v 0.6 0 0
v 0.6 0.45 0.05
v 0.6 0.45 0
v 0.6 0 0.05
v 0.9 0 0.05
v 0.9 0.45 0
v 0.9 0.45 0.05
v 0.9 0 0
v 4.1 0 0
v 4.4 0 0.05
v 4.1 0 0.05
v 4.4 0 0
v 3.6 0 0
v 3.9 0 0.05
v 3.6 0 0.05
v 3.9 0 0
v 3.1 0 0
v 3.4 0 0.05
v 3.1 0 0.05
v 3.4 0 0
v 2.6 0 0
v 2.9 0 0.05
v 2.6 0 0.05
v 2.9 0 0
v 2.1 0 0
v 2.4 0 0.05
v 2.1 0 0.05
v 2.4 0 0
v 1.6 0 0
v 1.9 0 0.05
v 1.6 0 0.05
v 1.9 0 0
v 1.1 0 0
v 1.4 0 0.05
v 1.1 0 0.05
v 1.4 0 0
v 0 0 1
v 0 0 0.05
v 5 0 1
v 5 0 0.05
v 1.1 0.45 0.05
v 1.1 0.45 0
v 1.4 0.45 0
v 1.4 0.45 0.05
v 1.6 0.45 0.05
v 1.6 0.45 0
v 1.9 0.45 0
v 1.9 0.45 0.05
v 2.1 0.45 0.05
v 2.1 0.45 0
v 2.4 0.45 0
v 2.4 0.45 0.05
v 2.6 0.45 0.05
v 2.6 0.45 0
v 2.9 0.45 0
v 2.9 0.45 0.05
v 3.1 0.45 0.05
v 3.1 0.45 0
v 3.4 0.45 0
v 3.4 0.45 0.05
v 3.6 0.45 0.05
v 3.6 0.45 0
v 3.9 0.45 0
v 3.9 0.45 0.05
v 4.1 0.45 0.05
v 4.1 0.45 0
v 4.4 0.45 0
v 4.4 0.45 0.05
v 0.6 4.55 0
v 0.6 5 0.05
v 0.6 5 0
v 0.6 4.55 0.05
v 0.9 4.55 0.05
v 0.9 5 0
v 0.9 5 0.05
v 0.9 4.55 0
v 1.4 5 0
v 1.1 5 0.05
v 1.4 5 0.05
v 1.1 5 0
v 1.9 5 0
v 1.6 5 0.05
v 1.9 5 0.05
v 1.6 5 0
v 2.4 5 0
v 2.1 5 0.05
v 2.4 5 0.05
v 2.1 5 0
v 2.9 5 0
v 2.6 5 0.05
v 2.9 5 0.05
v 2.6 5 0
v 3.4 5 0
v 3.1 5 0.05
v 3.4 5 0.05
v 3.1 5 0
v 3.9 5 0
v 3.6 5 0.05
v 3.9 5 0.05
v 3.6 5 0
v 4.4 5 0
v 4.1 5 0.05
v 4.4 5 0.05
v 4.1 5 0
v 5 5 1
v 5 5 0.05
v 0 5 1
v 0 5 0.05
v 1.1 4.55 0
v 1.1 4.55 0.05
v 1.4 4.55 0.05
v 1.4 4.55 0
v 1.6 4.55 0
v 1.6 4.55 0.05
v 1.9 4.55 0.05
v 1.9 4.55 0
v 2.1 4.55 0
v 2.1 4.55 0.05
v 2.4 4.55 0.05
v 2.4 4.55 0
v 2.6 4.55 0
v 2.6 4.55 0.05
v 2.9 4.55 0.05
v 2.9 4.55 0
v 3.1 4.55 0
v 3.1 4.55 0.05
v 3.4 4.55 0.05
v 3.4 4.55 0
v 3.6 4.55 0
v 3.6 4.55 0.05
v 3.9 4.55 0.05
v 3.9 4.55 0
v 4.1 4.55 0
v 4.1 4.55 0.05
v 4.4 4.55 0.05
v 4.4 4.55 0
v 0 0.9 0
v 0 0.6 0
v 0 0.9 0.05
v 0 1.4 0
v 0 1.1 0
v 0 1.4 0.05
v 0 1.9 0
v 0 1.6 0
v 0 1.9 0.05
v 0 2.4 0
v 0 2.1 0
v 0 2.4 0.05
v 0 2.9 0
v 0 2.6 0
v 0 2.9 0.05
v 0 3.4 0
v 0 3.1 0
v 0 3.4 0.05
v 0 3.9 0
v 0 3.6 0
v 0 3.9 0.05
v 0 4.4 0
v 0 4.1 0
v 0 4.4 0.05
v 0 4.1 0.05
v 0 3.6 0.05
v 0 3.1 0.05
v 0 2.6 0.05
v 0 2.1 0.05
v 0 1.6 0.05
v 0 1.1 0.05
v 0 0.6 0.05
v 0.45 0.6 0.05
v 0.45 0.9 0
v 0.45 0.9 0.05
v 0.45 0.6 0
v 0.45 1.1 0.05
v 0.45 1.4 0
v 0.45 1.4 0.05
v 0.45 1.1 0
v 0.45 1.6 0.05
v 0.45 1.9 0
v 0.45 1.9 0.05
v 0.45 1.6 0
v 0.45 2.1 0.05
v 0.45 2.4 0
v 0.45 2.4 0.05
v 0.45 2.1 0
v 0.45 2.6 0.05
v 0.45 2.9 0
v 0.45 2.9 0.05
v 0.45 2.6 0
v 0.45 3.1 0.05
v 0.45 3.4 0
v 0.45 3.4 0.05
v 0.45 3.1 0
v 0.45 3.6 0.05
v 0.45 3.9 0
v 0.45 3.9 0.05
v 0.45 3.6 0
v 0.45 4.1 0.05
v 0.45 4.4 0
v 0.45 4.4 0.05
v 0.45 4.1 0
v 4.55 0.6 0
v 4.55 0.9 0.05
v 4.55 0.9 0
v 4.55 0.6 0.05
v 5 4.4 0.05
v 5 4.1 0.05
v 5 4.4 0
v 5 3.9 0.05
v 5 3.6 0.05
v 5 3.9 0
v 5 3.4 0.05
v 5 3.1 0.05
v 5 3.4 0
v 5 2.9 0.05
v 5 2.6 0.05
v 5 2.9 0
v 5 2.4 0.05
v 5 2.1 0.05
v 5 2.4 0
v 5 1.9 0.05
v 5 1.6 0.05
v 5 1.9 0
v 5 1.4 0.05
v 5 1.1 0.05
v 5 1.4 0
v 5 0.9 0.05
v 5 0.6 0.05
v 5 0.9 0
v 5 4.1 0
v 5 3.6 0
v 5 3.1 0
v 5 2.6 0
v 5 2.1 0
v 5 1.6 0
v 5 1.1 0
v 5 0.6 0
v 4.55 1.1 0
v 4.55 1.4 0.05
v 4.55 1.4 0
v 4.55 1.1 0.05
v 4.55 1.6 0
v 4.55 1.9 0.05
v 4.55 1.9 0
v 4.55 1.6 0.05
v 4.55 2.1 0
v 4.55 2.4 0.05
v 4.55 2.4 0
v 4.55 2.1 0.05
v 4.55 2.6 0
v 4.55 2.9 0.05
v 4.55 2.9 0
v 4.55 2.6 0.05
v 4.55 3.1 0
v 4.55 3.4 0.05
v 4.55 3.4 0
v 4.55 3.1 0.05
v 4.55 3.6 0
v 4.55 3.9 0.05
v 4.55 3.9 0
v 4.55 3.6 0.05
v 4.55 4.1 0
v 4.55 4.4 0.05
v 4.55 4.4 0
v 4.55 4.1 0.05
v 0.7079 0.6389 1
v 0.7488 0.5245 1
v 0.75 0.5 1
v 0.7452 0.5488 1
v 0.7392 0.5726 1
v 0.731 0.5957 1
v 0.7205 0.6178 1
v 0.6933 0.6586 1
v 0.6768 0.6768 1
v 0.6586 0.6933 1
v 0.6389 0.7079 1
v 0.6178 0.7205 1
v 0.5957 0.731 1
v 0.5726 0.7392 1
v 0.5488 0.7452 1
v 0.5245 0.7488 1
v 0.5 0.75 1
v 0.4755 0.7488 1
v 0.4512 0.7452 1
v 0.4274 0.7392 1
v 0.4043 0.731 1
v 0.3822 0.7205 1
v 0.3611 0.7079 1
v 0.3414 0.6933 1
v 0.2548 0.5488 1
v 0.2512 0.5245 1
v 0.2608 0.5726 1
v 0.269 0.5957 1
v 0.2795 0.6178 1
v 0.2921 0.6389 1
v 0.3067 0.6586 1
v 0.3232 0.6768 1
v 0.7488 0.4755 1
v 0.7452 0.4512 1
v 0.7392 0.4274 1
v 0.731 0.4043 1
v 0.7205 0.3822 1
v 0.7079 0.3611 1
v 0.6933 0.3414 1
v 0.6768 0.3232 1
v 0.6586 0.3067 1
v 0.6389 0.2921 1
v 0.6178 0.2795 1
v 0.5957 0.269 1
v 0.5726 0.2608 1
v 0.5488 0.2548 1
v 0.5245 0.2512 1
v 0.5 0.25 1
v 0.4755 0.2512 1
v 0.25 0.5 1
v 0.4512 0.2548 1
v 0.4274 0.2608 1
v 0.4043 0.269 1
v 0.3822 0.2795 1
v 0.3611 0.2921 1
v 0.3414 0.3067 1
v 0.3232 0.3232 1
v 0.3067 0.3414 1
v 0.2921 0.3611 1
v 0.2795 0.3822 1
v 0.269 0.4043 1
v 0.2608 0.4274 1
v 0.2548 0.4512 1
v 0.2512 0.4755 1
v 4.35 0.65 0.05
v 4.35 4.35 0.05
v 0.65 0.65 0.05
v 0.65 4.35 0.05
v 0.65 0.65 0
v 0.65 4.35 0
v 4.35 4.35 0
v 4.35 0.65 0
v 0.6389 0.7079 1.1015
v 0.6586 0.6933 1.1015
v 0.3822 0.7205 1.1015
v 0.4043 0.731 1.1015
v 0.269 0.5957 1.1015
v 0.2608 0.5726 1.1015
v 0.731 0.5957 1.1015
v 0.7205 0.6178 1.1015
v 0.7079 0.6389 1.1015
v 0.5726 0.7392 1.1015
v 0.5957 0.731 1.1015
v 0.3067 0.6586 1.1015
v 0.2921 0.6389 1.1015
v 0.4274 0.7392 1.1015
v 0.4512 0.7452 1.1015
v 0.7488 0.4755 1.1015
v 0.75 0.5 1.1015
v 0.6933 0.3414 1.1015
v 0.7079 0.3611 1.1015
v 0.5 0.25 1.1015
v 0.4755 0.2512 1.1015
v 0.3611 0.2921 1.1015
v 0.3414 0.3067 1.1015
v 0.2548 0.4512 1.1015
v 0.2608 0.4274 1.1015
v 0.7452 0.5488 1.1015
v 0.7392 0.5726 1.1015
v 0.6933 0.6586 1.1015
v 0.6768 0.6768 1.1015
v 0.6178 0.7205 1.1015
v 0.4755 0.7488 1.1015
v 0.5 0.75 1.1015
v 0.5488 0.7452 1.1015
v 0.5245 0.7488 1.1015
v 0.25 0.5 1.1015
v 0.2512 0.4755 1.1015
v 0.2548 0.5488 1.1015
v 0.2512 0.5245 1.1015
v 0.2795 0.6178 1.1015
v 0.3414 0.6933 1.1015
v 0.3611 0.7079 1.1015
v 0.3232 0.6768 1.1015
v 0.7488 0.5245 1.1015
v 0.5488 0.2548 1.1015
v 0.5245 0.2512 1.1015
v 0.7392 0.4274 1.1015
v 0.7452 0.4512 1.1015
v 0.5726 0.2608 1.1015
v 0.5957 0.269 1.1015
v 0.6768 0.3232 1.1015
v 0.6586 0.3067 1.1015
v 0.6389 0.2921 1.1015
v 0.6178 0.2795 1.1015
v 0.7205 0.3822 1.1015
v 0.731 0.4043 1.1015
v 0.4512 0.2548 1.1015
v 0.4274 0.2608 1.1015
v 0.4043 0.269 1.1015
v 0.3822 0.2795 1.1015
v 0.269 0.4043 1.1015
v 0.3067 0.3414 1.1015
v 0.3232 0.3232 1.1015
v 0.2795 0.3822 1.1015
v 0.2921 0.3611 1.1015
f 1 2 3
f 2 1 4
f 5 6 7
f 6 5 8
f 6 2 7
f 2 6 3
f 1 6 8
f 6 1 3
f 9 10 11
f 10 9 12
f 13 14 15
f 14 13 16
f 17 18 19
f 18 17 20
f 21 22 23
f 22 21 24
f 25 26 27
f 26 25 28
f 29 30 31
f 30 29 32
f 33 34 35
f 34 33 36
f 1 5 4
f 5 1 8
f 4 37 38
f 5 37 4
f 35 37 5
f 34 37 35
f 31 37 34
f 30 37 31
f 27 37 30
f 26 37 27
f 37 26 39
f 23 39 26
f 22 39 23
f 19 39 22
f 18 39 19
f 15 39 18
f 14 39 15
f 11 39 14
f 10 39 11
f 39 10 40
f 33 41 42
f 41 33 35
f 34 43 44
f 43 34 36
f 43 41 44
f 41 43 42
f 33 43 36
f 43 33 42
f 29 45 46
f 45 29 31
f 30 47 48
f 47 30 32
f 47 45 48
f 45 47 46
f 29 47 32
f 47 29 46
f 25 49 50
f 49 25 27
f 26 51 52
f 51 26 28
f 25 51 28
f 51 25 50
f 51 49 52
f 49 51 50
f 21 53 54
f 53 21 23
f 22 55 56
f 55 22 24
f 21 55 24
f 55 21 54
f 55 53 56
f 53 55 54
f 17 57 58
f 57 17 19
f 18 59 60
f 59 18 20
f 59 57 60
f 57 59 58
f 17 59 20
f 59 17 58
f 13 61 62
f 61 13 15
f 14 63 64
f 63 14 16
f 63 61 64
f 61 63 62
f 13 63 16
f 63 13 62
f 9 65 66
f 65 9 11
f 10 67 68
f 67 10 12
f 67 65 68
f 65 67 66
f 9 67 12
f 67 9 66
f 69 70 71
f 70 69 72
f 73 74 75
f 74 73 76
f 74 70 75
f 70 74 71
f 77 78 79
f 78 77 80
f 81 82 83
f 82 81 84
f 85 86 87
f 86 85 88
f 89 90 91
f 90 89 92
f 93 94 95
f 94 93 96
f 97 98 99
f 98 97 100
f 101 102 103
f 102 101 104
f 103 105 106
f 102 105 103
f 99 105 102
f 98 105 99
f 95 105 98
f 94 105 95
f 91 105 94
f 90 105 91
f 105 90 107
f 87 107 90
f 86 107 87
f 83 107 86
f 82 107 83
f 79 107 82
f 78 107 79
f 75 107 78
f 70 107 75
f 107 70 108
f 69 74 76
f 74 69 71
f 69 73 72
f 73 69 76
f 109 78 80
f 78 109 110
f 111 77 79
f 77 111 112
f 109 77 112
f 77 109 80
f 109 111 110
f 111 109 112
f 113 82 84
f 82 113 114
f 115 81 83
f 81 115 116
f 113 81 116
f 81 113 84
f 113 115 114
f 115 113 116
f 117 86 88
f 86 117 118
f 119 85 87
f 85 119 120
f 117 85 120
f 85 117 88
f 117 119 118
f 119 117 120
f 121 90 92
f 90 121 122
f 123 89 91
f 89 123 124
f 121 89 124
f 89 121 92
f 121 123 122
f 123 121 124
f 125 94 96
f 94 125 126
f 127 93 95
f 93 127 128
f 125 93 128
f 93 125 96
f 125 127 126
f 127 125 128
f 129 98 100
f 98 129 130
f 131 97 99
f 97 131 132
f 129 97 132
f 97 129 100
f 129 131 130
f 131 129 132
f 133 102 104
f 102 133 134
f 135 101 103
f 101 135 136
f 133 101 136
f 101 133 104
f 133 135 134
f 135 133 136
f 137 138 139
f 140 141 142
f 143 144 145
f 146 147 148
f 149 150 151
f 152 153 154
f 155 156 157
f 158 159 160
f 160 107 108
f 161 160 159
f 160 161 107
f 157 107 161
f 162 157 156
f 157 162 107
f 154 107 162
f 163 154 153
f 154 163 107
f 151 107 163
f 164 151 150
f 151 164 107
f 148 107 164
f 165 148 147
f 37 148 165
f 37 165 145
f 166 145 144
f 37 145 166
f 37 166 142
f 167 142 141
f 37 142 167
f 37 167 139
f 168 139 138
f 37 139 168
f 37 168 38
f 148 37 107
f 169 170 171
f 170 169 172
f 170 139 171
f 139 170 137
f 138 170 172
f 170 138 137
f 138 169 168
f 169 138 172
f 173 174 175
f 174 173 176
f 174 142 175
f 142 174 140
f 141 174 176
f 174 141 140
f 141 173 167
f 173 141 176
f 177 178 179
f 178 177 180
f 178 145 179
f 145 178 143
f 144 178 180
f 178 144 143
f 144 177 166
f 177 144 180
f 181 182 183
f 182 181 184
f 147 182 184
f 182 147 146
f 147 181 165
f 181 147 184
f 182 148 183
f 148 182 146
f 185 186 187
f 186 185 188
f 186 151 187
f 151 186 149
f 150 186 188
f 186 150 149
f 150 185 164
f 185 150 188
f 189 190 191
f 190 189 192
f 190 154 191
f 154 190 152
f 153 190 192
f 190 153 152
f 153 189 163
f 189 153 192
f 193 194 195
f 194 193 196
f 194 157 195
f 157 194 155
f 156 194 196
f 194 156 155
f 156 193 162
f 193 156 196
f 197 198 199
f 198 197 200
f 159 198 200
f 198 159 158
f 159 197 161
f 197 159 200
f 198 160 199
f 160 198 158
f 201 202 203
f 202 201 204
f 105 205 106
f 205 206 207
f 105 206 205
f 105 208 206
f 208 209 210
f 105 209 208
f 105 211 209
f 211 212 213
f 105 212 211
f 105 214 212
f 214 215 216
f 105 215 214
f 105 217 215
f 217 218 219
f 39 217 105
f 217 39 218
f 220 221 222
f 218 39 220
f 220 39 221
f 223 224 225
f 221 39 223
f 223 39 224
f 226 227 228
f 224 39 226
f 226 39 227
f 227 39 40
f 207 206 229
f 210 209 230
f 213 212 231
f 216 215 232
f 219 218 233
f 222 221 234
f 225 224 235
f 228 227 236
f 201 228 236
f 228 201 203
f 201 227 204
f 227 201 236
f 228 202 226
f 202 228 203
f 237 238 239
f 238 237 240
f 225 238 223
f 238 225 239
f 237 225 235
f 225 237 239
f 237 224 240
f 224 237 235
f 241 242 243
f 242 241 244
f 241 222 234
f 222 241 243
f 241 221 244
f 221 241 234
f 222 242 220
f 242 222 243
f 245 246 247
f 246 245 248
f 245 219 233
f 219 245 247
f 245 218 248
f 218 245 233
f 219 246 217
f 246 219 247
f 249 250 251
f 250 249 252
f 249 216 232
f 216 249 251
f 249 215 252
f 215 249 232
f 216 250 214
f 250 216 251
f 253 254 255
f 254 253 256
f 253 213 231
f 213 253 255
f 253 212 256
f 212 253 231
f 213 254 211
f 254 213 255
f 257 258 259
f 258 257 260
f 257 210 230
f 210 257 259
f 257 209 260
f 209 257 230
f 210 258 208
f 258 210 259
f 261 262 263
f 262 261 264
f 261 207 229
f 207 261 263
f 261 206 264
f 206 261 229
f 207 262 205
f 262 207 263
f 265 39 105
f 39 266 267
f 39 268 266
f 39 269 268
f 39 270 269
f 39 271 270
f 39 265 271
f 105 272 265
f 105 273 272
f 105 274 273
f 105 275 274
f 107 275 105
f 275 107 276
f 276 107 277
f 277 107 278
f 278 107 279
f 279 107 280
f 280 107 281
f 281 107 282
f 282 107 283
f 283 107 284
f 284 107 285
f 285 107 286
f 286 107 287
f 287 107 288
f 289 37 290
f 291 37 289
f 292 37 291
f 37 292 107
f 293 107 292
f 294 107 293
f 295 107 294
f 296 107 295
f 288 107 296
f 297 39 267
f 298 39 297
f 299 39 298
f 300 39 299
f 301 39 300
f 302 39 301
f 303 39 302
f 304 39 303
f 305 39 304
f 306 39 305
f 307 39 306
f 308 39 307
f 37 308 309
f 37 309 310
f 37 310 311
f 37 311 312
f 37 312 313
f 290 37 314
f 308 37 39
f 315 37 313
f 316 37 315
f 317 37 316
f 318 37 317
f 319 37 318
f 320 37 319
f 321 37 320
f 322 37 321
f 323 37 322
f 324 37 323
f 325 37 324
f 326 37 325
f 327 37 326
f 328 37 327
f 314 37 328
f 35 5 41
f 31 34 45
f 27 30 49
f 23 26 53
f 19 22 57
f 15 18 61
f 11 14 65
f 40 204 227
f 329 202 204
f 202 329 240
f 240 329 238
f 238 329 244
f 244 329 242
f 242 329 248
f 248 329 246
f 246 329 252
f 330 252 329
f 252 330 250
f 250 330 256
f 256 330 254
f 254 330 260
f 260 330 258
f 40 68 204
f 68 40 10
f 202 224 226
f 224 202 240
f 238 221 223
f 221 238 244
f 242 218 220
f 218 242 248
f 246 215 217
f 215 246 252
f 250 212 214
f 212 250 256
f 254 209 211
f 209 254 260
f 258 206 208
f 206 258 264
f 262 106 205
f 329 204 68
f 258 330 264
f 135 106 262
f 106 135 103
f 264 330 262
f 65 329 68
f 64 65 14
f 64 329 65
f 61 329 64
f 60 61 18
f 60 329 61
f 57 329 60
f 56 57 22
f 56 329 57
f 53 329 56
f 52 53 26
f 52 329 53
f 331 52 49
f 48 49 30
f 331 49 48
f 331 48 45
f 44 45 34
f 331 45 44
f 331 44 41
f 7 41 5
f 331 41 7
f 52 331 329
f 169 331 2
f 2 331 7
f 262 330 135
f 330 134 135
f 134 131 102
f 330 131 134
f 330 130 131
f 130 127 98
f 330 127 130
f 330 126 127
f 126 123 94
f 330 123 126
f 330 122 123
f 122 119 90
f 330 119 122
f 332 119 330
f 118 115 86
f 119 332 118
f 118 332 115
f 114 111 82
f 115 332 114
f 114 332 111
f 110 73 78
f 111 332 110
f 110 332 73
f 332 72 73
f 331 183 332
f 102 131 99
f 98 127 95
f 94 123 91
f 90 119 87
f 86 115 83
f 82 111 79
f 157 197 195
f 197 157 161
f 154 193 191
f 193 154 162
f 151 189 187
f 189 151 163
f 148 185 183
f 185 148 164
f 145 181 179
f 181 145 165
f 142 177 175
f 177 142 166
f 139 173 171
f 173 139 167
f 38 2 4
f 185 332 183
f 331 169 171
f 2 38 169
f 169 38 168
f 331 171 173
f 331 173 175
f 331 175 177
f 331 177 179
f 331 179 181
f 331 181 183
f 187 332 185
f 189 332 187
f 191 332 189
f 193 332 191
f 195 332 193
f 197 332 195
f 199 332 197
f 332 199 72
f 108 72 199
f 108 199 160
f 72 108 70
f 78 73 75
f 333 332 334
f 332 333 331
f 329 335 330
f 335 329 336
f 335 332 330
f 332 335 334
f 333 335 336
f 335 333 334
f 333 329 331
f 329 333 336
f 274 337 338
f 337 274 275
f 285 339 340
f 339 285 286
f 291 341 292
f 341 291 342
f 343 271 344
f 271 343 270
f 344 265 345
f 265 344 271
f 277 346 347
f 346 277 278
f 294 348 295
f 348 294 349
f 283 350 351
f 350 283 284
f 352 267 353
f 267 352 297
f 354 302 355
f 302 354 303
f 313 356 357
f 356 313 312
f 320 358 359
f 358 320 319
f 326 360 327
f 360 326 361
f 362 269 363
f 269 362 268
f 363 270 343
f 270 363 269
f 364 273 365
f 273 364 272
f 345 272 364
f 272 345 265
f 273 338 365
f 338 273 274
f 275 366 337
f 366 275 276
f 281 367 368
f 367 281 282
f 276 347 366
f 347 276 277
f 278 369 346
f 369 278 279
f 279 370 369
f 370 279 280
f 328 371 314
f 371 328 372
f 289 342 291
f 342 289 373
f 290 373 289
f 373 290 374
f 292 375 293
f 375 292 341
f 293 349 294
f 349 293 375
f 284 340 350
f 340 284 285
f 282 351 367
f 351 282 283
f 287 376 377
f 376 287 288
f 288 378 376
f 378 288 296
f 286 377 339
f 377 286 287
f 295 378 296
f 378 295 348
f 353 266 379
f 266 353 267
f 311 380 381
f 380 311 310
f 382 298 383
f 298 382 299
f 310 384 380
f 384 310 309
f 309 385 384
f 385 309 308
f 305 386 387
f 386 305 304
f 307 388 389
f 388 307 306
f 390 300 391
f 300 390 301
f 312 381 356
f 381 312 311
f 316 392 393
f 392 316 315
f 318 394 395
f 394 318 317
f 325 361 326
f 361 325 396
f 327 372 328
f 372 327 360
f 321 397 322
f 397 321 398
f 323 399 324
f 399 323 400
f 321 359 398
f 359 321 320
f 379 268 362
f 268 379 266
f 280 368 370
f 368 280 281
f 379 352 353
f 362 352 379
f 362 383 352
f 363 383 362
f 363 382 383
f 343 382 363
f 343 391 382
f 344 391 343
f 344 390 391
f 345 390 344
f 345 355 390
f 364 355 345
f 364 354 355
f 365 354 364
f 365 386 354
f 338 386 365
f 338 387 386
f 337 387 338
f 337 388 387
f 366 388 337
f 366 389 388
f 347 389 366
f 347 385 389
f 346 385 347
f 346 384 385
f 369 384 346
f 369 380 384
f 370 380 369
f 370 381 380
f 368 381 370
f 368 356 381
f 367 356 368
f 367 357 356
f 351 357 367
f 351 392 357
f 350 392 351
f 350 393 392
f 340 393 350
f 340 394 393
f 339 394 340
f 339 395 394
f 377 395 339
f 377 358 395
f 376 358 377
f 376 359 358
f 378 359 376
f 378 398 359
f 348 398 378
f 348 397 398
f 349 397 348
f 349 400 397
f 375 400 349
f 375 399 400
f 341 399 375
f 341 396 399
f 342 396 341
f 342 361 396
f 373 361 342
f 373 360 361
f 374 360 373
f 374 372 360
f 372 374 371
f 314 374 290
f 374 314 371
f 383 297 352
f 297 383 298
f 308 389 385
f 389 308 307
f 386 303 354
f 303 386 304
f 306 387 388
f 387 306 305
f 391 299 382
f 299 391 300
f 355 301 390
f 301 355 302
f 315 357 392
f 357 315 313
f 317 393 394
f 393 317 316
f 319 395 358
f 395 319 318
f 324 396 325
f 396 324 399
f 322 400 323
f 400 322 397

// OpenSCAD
/*32-Lead Very Thin Plastic Quad Flat, No Lead Package (RTB) - 5.0x5.0 mm Body [VQFN]
With 3.7x3.7 mm Exposed Pad and Stepped Wettable Flanks;
generated by com.zoubworld.electronics.cad.model3d.QFN32
Date : Sun Jan 25 03:12:27 CET 2026
*/
b = 0.3 ;
D3 = 0.085 ;
L = 0.45 ;
e = 0.5 ;
A1 = 0.05 ;
A3 = 0.203 ;
A = 1.0 ;
N = 32.0 ;
E = 5.0 ;
D = 5.0 ;
D2 = 3.7 ;
A4 = 0.19 ;
E2 = 3.7 ;
K = 0.2 ;
$fn =64;

//body
color("black")
translate([0,0,A1])
cube([D,E,A-A1], center=false);

// pad
for (i = [-N/4/2 : 1 : N/4/2-1])
color("grey")
translate([D/2-b/2+e/2+e*i,0,0])
cube([b,L,A3], center=false);

for (i = [-N/4/2 : 1 : N/4/2-1])
color("grey")
translate([D/2-b/2+e/2+e*i,E-L,0])
cube([b,L,A3], center=false);


for (i = [-N/4/2 : 1 : N/4/2-1])
color("grey")
translate([0,E/2-b/2+e/2+e*i,0])
cube([L,b,A3], center=false);



for (i = [-N/4/2 : 1 : N/4/2-1])
color("grey")
translate([D-L,E/2-b/2+e/2+e*i,0])
cube([L,b,A3], center=false);

//expose pad
color("grey")
translate([D/2-D2/2,E/2-E2/2,0])
cube([D2,E2,A3], center=false);

color("white")
translate([0.5,0.5,A3])
cylinder(A-A3/2,r=0.25,center=false);
